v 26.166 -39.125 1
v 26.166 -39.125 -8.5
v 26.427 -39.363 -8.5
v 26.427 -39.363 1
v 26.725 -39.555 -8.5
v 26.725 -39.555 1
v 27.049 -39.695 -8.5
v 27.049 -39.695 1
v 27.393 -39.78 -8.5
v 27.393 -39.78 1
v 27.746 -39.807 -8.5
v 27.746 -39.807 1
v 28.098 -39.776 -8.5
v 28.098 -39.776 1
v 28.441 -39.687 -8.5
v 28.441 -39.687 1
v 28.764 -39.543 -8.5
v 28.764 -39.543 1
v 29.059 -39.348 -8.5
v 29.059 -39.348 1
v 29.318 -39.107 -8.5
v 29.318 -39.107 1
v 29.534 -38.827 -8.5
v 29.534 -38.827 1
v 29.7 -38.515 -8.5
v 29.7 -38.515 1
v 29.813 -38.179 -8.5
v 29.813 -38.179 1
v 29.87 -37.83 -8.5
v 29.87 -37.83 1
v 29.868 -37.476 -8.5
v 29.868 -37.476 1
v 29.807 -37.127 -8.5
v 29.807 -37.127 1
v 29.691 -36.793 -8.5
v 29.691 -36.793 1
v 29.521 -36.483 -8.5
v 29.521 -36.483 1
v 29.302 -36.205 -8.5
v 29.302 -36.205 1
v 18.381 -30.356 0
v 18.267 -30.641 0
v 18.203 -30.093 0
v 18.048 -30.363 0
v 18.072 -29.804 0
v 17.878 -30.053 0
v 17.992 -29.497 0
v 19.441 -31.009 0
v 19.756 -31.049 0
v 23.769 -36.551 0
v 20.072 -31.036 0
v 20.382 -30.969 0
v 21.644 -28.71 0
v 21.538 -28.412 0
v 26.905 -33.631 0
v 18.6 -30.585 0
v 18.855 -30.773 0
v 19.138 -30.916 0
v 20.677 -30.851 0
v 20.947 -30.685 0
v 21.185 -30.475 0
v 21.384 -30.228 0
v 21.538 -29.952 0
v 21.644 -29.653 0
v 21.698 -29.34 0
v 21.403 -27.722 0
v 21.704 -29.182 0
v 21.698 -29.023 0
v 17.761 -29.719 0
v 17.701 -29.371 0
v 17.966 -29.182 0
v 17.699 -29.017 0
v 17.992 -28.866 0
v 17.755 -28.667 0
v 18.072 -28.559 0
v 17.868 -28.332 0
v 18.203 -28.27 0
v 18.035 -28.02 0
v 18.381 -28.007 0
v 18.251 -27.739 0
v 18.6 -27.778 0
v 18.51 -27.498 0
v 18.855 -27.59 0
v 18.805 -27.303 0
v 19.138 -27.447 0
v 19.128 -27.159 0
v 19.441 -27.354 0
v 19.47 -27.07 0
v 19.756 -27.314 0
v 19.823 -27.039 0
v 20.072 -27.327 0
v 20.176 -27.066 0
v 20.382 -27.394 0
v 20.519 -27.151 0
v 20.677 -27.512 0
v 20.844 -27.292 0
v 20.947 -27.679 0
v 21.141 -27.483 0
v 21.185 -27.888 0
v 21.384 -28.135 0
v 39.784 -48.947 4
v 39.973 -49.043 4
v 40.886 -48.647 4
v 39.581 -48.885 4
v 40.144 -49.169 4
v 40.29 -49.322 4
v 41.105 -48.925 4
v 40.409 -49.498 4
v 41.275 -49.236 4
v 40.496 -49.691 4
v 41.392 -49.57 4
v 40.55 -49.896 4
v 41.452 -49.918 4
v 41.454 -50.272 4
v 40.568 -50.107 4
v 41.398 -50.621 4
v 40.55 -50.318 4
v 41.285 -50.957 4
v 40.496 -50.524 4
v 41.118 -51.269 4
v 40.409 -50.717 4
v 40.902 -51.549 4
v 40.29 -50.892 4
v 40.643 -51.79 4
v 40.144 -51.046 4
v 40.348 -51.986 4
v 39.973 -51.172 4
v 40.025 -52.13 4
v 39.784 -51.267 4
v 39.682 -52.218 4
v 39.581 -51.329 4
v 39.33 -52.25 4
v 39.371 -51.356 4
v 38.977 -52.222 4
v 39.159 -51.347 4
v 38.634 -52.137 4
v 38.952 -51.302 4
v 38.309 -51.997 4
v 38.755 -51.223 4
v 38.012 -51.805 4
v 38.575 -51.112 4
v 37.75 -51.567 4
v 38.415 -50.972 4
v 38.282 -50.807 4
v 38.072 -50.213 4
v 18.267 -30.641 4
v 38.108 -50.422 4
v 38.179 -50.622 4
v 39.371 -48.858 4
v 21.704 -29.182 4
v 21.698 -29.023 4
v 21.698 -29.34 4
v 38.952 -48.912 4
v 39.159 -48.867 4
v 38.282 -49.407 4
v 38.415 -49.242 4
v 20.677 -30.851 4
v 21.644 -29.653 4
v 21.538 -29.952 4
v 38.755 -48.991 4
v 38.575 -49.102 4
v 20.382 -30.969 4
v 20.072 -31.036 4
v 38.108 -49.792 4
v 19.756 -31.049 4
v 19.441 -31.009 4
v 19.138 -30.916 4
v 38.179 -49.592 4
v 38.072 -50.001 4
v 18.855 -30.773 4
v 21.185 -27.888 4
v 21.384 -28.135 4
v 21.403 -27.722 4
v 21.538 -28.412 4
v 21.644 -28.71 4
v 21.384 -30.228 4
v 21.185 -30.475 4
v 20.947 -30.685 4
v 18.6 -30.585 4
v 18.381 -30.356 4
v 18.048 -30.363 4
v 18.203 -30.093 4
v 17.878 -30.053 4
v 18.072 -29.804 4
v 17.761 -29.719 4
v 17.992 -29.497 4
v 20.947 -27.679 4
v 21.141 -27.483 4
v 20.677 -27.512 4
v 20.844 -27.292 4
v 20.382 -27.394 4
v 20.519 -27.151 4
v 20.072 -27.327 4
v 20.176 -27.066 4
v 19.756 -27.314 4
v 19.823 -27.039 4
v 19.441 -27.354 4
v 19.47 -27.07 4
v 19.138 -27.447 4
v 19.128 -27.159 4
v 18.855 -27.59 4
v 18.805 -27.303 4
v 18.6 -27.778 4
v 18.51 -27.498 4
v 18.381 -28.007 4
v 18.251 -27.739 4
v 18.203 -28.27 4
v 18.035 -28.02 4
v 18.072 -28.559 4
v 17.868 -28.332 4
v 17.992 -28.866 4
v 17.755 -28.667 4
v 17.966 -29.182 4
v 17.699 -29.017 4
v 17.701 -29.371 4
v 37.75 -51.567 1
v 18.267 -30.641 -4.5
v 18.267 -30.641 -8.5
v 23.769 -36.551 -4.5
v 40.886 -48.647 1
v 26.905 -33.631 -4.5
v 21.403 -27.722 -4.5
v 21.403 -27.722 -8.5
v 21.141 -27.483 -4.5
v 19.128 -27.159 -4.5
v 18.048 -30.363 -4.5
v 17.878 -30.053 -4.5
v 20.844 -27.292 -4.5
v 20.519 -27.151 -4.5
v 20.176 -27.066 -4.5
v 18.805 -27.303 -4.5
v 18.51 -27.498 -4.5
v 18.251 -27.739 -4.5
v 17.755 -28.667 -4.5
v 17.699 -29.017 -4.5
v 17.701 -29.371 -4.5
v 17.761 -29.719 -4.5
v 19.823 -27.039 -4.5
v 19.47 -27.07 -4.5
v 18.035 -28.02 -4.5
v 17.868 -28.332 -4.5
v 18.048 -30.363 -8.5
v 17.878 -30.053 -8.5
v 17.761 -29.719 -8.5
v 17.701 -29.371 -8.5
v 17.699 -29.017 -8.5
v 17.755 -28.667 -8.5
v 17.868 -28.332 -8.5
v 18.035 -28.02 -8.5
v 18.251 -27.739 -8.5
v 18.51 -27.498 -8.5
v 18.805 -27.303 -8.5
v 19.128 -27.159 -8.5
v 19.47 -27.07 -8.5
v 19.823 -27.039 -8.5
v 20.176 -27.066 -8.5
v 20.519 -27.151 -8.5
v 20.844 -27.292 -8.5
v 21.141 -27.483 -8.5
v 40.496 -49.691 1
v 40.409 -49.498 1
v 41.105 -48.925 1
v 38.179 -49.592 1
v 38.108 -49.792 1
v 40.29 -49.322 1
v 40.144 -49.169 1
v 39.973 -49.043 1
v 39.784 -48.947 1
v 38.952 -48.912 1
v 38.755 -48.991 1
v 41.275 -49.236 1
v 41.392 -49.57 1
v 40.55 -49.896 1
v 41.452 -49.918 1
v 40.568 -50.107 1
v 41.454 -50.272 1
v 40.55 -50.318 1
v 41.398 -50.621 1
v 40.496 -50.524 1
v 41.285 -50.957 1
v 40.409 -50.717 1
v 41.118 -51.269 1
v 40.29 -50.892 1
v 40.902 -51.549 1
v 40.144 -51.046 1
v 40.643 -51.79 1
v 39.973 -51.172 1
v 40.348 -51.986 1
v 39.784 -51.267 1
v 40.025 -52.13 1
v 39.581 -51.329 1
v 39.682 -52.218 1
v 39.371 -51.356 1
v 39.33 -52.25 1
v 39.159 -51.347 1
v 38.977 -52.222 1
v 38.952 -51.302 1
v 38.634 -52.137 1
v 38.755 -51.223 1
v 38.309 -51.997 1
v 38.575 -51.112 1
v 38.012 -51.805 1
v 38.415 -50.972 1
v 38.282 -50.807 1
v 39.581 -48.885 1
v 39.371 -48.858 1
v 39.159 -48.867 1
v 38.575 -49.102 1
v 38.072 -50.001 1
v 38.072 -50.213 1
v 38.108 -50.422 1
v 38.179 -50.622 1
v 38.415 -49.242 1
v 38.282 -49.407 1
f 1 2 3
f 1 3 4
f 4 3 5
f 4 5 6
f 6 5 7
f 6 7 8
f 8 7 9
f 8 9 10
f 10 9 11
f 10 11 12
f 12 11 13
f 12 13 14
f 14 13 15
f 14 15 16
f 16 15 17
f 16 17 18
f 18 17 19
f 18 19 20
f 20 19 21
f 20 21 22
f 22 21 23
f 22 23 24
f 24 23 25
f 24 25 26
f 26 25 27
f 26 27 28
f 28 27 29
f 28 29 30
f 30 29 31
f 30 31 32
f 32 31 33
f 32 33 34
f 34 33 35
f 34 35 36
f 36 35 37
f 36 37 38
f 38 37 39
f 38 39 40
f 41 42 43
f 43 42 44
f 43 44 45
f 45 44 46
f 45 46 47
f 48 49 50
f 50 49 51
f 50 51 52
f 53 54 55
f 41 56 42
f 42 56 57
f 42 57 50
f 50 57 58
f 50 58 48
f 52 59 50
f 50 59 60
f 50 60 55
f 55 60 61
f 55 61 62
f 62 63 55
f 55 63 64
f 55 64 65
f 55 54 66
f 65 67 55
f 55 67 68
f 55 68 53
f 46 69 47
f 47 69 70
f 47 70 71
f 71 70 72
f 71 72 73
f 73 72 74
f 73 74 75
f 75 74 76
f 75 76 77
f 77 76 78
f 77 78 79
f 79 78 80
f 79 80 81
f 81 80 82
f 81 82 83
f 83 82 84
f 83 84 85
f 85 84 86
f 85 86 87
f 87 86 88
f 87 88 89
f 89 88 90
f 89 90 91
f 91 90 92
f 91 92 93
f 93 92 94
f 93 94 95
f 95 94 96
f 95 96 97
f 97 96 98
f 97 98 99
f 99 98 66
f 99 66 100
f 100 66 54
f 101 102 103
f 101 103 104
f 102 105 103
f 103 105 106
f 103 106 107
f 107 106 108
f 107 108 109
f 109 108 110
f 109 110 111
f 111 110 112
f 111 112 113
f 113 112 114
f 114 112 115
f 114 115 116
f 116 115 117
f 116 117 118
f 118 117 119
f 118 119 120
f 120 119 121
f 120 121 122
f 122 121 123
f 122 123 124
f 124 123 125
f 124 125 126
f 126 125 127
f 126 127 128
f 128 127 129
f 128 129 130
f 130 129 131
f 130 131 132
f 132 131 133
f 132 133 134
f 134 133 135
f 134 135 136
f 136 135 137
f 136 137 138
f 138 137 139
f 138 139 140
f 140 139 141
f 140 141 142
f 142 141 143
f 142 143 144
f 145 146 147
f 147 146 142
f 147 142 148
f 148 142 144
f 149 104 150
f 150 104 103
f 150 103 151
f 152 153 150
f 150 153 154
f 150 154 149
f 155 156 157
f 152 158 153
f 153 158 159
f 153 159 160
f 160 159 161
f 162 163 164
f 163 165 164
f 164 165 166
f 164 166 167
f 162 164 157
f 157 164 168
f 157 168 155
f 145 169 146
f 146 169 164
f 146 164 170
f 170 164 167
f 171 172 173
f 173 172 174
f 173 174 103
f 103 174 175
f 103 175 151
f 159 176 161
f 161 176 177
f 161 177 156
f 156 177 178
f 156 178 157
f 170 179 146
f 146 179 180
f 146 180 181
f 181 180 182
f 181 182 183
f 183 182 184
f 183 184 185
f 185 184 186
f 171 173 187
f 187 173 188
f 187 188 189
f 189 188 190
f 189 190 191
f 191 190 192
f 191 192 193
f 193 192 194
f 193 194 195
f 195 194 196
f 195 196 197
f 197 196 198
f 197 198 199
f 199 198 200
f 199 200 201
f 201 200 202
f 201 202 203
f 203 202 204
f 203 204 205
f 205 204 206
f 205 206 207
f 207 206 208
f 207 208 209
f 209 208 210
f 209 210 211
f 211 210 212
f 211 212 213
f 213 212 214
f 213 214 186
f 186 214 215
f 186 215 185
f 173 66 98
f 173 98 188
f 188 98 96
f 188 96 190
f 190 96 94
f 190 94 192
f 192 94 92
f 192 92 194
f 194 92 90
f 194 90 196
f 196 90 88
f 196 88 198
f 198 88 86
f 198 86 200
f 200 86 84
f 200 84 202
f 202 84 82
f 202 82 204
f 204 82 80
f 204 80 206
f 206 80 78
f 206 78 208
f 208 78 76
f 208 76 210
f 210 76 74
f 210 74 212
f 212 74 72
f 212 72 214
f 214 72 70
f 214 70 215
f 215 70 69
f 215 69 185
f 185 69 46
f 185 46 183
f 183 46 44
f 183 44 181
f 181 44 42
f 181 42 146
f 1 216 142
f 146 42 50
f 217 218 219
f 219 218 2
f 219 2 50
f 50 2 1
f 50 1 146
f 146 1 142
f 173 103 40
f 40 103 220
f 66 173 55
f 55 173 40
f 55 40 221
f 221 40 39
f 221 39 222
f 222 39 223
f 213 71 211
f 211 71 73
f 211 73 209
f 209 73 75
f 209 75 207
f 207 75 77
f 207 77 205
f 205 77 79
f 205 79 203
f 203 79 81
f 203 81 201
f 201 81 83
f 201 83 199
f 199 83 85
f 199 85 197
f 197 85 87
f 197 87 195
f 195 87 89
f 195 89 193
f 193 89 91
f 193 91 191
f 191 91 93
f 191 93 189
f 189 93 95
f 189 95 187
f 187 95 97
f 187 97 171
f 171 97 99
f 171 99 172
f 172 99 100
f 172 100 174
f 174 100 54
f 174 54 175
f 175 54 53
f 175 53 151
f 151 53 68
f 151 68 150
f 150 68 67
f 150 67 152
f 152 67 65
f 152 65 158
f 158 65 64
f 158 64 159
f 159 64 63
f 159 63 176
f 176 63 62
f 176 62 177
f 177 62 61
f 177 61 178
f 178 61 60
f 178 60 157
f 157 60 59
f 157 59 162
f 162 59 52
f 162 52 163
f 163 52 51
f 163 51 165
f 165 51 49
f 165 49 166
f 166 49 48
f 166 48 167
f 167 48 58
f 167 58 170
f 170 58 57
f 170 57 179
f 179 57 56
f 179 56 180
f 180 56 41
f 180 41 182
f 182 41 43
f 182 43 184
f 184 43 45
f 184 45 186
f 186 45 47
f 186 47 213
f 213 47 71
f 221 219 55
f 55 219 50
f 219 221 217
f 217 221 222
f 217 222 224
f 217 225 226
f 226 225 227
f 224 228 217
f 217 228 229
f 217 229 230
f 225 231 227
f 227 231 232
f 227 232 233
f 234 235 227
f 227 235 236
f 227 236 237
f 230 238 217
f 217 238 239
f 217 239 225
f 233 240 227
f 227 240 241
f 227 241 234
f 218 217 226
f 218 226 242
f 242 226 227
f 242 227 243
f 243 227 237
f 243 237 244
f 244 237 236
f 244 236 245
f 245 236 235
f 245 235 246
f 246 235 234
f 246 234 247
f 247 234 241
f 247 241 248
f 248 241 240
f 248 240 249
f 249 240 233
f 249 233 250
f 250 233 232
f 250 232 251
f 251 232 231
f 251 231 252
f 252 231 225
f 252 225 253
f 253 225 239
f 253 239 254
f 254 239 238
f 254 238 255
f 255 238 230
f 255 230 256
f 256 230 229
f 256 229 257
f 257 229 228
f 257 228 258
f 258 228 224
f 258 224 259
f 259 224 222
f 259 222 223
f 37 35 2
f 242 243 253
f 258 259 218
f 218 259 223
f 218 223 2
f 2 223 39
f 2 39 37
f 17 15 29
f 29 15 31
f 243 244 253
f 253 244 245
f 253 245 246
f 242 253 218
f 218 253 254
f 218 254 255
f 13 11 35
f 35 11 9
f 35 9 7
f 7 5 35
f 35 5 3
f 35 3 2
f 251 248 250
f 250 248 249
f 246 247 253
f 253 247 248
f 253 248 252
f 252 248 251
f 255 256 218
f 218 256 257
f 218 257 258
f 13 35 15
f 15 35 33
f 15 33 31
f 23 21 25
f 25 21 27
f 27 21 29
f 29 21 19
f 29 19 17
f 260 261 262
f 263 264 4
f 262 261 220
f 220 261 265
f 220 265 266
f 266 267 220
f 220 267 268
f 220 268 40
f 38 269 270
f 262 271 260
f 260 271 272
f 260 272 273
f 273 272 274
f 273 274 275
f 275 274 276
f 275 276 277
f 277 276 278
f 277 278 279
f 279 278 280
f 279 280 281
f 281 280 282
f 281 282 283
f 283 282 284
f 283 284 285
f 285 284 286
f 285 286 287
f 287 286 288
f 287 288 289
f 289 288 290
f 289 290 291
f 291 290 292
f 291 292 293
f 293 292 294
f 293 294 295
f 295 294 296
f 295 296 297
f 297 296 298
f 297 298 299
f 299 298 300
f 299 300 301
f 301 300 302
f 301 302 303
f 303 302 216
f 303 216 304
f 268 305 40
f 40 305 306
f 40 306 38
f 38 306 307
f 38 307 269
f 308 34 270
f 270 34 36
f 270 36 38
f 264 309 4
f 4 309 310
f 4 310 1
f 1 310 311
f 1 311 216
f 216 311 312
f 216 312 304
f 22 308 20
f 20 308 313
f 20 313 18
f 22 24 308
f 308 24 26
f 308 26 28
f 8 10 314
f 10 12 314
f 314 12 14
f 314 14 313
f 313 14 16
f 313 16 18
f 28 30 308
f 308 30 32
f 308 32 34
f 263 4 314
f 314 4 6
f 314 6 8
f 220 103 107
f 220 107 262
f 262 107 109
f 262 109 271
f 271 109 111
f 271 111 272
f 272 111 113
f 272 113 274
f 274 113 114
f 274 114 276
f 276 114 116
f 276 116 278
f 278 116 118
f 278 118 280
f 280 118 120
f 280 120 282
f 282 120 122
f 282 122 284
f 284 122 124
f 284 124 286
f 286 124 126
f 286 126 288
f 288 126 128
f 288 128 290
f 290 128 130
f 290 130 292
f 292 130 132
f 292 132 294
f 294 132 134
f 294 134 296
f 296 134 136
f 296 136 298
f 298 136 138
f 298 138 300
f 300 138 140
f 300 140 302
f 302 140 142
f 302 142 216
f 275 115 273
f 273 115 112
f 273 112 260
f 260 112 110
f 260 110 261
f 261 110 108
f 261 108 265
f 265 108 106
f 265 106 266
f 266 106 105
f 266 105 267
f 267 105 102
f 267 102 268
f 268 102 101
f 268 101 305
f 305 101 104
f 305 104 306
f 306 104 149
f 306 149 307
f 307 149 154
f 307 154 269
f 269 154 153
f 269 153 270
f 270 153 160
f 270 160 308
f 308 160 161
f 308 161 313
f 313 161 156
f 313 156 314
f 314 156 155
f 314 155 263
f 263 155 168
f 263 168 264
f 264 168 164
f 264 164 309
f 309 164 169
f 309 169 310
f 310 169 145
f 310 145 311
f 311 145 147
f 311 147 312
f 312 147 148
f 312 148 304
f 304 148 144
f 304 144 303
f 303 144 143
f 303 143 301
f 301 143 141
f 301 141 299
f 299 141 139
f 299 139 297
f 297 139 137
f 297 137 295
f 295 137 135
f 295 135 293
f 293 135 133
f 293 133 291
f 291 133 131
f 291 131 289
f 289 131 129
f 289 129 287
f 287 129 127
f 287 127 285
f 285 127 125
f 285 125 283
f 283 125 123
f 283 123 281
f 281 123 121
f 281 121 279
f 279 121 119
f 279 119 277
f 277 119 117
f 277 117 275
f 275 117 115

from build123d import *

# Parameters (mm, degrees)
SKETCH1_R           = 1.869394483
BOSS_EXTRUDE1_DEPTH = 4
BOSS_EXTRUDE2_START = 4.5
BOSS_EXTRUDE2_DEPTH = 4.5
BOSS_EXTRUDE3_START = 4
BOSS_EXTRUDE3_DEPTH = 4
BOSS_EXTRUDE4_START = -3
SKETCH6_R           = 1.25
BOSS_EXTRUDE4_DEPTH = 3


with BuildPart() as part:
    # Sketch1 → Boss-Extrude1 (new body)
    with BuildSketch(Plane.XY):
        with BuildLine():
            Line((21.403000099, -27.721654021), (29.301617843, -36.205200538))
            ThreePointArc((29.301617843, -36.205200538), (29.193506427, -39.233088823), (26.165618141, -39.124977407))
            Line((26.165618141, -39.124977407), (18.267000397, -30.64143089))
            ThreePointArc((18.267000397, -30.64143089), (18.375111813, -27.613542605), (21.403000099, -27.721654021))
        make_face()
        with Locations((19.835000248, -29.181542456)):
            Circle(SKETCH1_R, mode=Mode.SUBTRACT)
    extrude(amount=BOSS_EXTRUDE1_DEPTH)

    # Sketch2 → Boss-Extrude2 (add)
    with BuildSketch(Plane(origin=(0, 0, 0), x_dir=(-1, 0, 0), z_dir=(0, 0, -1)).offset(BOSS_EXTRUDE2_START)):
        with BuildLine():
            Line((-29.301617843, -36.205200538), (-26.904832103, -33.63092185))
            Line((-26.904832103, -33.63092185), (-23.768832401, -36.55069872))
            Line((-23.768832401, -36.55069872), (-26.165618141, -39.124977407))
            ThreePointArc((-26.165618141, -39.124977407), (-29.193506427, -39.233088823), (-29.301617843, -36.205200538))
        make_face()
    extrude(amount=-BOSS_EXTRUDE2_DEPTH)

    # Sketch3 → Boss-Extrude3 (add)
    with BuildSketch(Plane(origin=(0, 0, -4.5), x_dir=(-1, 0, 0), z_dir=(0, 0, -1)).offset(BOSS_EXTRUDE3_START)):
        with BuildLine():
            Line((-26.165618141, -39.124977407), (-23.768832401, -36.55069872))
            Line((-23.768832401, -36.55069872), (-18.267000397, -30.64143089))
            ThreePointArc((-18.267000397, -30.64143089), (-18.375111813, -27.613542605), (-21.403000099, -27.721654021))
            Line((-21.403000099, -27.721654021), (-26.904832103, -33.63092185))
            Line((-26.904832103, -33.63092185), (-29.301617843, -36.205200538))
            ThreePointArc((-29.301617843, -36.205200538), (-29.193506427, -39.233088823), (-26.165618141, -39.124977407))
        make_face()
    extrude(amount=-BOSS_EXTRUDE3_DEPTH)

    # Sketch6 → Boss-Extrude4 (add)
    with BuildSketch(Plane.XY.offset(4).offset(BOSS_EXTRUDE4_START)):
        with BuildLine():
            Line((37.749845774, -51.567070083), (26.165618141, -39.124977407))
            ThreePointArc((26.165618141, -39.124977407), (26.273729557, -36.097089122), (29.301617843, -36.205200538))
            Line((29.301617843, -36.205200538), (40.885845475, -48.647293214))
            ThreePointArc((40.885845475, -48.647293214), (40.777734059, -51.675181499), (37.749845774, -51.567070083))
        make_face()
        with Locations((39.317845624, -50.107181648)):
            Circle(SKETCH6_R, mode=Mode.SUBTRACT)
    extrude(amount=BOSS_EXTRUDE4_DEPTH)


solid = part.part
